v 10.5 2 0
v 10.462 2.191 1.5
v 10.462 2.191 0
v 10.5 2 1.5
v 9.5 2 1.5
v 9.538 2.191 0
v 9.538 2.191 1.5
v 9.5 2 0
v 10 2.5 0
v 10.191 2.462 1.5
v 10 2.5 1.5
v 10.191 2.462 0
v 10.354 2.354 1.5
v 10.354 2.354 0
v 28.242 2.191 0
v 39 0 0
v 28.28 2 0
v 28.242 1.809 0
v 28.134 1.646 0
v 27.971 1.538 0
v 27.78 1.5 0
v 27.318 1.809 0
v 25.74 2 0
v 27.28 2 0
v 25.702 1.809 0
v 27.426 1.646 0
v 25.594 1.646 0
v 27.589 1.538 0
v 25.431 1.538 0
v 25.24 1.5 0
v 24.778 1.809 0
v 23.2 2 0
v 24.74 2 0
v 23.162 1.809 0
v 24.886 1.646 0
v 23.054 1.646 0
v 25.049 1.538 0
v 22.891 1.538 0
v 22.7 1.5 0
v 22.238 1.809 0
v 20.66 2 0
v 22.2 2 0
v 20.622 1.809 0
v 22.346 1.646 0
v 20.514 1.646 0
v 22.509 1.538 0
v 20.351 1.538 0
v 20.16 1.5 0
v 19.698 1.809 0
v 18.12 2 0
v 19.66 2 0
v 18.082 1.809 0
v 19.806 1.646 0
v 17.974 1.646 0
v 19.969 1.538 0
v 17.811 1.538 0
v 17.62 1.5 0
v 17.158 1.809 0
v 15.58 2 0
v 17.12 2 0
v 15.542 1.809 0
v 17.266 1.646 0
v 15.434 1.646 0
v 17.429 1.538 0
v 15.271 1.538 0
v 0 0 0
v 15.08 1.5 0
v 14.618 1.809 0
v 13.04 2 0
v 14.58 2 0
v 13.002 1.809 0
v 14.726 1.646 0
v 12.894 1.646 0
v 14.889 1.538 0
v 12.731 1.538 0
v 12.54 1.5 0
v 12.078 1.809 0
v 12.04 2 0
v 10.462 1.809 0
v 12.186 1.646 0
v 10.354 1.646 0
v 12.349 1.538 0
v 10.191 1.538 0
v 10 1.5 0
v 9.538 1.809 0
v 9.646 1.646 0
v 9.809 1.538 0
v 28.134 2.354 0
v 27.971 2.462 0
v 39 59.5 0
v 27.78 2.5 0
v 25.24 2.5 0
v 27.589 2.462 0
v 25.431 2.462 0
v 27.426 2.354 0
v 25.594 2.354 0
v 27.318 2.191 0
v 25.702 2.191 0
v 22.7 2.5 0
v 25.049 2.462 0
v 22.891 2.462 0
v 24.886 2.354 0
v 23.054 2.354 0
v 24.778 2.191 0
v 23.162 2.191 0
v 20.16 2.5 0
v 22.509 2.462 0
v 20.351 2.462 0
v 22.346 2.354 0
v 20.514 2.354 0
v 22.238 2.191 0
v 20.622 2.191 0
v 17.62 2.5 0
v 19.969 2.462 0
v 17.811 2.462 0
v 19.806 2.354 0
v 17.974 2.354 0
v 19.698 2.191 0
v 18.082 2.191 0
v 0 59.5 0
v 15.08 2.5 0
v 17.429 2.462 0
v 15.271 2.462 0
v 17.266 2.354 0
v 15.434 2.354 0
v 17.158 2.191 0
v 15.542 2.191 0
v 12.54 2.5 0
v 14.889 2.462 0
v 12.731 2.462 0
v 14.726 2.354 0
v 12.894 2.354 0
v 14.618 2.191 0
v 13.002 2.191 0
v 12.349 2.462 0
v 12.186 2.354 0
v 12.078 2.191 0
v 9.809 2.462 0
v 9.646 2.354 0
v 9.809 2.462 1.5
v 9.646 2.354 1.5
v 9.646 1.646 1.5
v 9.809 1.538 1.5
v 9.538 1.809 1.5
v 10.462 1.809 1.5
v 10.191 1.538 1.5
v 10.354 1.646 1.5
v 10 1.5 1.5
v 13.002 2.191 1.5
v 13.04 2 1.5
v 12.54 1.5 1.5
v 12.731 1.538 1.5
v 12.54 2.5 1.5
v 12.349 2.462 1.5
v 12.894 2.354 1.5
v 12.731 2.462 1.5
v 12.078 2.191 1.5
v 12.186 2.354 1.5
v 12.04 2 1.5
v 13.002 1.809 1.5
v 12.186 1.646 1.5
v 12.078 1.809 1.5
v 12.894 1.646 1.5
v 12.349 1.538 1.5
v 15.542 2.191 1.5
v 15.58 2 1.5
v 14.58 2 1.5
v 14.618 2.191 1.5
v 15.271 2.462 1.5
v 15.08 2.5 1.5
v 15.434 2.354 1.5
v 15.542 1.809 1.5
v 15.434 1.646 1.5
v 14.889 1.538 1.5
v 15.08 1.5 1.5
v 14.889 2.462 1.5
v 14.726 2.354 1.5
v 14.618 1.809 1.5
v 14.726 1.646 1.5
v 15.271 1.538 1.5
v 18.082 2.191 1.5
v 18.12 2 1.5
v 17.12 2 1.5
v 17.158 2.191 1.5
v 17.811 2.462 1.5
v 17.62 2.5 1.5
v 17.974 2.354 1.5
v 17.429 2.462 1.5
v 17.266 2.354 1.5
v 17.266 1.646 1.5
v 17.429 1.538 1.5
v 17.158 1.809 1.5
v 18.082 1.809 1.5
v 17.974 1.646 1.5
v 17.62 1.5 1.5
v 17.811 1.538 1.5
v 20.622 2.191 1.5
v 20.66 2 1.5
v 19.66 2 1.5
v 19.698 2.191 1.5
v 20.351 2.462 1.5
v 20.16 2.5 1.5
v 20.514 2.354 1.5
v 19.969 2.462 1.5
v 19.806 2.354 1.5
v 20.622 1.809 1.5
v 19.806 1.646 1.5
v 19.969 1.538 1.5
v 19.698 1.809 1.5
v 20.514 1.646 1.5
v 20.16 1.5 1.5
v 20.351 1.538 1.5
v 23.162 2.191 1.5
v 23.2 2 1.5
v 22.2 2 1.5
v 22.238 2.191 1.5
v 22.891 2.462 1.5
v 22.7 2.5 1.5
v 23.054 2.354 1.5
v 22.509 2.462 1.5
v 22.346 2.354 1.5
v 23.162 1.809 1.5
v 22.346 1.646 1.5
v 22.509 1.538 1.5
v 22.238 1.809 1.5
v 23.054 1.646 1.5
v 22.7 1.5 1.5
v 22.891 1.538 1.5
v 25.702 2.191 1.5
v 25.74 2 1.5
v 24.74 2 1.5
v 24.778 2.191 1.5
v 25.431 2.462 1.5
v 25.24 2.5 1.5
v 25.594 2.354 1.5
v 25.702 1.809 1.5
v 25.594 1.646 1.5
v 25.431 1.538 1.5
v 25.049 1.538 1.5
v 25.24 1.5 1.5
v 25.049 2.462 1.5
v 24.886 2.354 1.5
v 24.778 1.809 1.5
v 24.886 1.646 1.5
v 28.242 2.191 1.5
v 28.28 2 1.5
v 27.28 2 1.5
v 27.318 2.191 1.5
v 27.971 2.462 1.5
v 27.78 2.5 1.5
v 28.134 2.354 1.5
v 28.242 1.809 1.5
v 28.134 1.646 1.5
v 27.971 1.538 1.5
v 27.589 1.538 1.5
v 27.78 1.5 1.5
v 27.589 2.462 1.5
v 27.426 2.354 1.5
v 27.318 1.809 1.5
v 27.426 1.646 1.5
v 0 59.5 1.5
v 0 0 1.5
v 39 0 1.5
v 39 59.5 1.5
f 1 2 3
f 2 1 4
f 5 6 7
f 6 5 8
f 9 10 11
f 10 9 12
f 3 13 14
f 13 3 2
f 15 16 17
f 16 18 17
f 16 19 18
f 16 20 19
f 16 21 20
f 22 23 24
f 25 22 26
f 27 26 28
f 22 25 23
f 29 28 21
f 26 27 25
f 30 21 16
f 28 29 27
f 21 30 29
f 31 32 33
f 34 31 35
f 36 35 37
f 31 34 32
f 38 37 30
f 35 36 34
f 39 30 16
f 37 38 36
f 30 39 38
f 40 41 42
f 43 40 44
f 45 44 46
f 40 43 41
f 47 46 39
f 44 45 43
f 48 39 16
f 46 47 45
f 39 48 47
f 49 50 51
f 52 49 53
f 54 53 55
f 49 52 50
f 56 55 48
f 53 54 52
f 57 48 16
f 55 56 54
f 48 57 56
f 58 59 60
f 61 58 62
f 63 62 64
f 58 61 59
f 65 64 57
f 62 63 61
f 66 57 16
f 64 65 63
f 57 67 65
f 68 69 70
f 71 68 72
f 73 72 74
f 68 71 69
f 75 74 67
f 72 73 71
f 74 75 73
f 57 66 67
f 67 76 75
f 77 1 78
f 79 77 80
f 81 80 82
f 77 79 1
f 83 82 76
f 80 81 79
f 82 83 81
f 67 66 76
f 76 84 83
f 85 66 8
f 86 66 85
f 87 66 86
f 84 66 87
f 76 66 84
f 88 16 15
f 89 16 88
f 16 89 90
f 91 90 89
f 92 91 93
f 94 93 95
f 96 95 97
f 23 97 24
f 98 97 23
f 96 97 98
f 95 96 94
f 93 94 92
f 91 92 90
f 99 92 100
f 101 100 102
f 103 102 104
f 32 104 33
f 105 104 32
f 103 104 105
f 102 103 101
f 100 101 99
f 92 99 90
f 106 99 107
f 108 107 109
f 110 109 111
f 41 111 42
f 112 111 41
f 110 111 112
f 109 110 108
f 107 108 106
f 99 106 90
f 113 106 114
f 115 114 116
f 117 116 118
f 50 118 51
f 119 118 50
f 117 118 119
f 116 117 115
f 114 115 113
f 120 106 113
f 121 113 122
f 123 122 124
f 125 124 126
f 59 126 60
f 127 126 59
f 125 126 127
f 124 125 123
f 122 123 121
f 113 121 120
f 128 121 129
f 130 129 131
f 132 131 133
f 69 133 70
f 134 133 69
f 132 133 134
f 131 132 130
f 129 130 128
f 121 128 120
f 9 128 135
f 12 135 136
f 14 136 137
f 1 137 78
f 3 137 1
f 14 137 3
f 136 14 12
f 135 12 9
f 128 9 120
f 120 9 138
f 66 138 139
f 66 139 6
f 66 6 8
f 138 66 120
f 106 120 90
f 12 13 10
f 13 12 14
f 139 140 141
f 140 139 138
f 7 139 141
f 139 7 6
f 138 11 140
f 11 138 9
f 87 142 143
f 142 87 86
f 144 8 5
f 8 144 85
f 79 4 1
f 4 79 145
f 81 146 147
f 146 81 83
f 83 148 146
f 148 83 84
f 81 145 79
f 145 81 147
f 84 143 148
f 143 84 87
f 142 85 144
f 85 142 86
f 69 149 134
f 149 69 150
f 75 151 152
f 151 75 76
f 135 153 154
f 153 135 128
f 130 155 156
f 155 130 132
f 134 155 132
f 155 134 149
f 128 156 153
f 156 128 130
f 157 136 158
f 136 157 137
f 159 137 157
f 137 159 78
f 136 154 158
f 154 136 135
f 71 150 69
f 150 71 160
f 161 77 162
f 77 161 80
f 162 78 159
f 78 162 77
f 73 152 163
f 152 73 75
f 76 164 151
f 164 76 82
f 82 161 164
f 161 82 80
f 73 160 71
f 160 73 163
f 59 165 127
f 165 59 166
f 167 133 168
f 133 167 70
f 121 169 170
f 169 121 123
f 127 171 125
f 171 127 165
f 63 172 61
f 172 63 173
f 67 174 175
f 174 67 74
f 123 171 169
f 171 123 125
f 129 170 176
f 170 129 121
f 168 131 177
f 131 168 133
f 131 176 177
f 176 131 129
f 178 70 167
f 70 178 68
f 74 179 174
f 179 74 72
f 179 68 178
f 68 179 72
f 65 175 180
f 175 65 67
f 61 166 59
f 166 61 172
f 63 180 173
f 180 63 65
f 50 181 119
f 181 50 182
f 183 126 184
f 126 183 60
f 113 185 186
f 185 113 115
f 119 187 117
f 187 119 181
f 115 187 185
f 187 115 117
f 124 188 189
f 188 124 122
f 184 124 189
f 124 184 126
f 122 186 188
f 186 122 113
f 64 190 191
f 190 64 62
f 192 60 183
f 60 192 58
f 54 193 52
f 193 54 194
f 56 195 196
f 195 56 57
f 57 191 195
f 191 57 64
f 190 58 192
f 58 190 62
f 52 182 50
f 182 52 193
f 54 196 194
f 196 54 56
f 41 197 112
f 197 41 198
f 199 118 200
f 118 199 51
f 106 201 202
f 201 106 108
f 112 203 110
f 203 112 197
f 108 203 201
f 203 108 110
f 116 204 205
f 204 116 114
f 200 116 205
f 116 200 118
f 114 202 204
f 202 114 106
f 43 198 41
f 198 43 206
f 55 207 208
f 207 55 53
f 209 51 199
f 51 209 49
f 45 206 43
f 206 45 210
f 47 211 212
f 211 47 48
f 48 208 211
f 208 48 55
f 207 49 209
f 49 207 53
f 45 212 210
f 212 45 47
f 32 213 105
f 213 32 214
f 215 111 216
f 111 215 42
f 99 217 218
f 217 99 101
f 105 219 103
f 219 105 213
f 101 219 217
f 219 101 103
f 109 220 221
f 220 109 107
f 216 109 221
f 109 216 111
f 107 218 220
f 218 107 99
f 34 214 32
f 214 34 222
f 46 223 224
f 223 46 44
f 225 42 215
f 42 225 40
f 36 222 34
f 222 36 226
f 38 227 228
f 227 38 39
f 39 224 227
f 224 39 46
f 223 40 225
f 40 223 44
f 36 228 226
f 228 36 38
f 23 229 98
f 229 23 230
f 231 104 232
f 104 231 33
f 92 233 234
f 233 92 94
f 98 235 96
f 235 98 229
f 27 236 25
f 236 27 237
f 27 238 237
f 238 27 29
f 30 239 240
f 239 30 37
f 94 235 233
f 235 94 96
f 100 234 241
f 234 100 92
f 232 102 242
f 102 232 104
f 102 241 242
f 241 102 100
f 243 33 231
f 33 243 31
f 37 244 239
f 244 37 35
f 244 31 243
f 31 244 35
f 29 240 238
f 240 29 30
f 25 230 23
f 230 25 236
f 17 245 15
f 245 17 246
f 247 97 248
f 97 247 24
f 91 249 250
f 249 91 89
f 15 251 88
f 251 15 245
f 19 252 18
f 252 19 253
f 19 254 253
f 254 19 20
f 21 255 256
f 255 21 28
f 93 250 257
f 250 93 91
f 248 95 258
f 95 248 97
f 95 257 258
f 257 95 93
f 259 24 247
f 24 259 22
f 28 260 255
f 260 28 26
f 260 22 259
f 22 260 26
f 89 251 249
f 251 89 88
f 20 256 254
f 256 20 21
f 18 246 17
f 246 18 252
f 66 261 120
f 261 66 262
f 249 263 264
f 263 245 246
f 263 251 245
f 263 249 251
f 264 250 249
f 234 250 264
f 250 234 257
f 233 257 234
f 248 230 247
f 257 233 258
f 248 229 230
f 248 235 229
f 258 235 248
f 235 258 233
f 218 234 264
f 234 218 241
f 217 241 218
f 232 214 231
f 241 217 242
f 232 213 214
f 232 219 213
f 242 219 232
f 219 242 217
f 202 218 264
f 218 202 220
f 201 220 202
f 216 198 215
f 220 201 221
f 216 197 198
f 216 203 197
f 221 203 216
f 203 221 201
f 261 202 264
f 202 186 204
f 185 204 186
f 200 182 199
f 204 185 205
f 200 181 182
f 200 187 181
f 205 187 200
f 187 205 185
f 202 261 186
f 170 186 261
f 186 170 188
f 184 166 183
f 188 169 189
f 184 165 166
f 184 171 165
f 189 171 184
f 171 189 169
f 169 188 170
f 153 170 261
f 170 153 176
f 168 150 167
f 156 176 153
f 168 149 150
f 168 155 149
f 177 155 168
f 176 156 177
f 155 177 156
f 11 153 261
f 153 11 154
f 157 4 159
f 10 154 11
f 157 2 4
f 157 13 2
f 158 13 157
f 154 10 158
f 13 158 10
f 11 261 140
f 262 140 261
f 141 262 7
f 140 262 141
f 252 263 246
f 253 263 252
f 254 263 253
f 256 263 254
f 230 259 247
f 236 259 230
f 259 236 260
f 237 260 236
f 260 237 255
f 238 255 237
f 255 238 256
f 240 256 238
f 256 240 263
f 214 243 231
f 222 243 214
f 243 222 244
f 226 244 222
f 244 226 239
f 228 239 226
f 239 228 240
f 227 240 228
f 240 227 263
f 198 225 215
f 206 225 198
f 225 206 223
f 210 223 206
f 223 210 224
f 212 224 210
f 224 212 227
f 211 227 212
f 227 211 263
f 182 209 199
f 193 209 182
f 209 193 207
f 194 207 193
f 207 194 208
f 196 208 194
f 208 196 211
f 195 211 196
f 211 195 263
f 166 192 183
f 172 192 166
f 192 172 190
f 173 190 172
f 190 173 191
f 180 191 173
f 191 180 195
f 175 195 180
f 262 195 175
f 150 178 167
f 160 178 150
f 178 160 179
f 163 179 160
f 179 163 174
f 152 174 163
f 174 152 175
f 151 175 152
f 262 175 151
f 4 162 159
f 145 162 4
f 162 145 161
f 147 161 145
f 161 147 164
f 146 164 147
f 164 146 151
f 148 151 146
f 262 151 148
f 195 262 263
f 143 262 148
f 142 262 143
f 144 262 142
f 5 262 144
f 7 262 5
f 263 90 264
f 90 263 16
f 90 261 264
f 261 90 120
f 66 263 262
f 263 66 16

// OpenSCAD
module RC522 ()
{
    difference()
    {
    cube([39,59.5,1.5]);
    
    translate([10, 2, 0])    
    for (i = [0:7]) {
      translate([i * 2.54, 0, 0])  
      cylinder($fs=0.2,d=1, h =10);
    }
}
}

RC522();
